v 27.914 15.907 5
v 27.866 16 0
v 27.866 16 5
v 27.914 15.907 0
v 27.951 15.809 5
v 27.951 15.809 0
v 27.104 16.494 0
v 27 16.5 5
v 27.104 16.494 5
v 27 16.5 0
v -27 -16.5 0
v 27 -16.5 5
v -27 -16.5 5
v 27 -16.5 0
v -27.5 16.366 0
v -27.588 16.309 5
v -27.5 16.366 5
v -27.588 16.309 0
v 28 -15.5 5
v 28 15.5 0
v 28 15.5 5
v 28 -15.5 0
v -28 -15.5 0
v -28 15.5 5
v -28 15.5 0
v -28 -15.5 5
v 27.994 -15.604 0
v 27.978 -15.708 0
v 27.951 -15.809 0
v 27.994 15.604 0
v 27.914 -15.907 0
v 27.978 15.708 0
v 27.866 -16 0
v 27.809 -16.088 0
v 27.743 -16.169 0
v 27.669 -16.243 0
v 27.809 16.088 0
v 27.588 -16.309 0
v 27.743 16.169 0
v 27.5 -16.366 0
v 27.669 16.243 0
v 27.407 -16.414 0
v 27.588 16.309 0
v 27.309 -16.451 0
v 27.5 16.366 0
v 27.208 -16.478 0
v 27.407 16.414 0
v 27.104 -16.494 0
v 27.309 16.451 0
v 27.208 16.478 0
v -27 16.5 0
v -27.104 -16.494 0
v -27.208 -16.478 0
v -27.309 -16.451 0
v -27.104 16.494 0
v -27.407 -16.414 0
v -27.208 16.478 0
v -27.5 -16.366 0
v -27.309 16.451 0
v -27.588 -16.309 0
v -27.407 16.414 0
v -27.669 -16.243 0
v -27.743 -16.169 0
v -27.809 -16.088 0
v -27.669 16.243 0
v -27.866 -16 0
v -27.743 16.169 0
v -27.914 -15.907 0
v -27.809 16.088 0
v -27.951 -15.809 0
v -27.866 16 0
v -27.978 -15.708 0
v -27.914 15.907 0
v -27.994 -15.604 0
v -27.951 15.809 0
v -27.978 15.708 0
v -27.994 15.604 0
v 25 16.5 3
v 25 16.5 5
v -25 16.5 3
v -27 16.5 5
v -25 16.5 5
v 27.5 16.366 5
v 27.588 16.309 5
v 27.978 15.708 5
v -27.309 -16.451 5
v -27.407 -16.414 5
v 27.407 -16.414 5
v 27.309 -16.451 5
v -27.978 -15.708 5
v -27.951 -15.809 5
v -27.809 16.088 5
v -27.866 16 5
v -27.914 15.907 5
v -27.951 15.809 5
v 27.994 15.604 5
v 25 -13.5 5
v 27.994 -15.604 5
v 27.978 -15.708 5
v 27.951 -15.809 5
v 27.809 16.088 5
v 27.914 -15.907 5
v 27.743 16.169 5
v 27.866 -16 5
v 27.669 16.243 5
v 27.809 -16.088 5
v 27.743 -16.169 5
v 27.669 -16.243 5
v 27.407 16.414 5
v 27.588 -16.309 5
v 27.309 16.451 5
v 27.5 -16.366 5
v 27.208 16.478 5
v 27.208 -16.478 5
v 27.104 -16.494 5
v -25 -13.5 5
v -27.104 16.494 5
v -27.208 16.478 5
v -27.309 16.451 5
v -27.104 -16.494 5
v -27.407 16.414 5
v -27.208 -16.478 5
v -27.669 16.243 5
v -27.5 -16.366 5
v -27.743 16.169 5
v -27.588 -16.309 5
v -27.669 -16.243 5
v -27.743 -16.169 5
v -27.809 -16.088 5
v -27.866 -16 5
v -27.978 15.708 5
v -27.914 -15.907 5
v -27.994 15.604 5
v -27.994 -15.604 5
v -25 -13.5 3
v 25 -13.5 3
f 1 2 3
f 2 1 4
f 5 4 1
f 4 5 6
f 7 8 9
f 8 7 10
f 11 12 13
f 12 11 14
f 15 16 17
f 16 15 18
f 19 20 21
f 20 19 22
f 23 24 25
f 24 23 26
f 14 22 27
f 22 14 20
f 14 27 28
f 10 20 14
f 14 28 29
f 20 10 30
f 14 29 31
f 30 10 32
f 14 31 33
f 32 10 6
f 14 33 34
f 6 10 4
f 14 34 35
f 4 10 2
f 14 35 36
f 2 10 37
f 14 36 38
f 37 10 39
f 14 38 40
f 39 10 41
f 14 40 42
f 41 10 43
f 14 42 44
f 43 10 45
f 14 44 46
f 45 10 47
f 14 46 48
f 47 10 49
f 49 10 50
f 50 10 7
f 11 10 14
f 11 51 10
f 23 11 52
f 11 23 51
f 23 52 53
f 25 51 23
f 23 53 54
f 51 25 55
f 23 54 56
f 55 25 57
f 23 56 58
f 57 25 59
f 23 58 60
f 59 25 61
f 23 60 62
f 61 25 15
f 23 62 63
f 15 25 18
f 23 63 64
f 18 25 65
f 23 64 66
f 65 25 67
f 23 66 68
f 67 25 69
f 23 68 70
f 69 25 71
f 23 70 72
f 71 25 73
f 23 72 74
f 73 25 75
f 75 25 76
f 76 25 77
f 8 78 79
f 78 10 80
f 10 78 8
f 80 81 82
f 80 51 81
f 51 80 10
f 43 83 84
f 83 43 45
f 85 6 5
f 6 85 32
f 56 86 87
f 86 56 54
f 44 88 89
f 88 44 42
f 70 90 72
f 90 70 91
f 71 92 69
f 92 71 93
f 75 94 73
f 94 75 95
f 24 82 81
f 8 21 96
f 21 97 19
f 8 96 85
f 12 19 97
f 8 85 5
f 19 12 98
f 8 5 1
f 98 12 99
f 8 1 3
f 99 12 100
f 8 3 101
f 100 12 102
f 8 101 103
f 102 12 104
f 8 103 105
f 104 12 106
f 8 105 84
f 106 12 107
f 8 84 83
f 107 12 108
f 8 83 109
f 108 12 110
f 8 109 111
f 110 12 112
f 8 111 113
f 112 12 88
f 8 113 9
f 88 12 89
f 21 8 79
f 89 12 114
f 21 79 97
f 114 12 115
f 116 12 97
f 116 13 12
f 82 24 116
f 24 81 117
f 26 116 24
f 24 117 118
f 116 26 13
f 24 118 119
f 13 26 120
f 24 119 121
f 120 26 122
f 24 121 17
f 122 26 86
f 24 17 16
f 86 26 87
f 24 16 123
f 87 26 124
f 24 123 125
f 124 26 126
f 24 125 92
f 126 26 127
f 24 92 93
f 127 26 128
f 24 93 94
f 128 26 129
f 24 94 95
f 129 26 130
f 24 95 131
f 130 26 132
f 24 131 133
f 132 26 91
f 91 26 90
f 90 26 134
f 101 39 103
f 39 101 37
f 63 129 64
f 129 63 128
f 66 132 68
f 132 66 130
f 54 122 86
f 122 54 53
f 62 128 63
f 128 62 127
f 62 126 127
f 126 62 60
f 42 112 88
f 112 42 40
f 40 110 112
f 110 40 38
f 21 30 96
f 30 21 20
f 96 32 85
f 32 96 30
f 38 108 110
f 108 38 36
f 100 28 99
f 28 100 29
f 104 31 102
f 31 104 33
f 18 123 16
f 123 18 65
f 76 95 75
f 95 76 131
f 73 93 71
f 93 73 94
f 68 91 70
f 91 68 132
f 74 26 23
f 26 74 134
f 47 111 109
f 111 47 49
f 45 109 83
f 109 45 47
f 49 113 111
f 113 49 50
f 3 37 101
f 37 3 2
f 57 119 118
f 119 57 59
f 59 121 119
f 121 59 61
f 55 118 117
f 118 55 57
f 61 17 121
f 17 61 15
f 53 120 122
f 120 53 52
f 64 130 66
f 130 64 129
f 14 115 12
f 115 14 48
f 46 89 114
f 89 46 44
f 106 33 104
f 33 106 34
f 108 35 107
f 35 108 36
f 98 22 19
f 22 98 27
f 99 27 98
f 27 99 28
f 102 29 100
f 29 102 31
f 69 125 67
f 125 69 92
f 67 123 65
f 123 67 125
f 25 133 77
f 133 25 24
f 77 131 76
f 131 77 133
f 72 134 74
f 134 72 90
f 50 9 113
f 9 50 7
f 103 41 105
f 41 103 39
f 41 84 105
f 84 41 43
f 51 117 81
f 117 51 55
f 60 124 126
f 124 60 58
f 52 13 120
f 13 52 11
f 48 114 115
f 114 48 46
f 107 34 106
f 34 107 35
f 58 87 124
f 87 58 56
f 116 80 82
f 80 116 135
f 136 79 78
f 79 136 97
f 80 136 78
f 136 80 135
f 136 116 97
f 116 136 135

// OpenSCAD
// Epressoblock

module outerCube() {
    minkowski() {
       square([54,31],center=true);
       circle(r=1,$fn=60);
    }

}

difference(){
    linear_extrude(5)
    outerCube();
    translate([0,1.5,6])
    #cube([50,30,6],center=true);
}
